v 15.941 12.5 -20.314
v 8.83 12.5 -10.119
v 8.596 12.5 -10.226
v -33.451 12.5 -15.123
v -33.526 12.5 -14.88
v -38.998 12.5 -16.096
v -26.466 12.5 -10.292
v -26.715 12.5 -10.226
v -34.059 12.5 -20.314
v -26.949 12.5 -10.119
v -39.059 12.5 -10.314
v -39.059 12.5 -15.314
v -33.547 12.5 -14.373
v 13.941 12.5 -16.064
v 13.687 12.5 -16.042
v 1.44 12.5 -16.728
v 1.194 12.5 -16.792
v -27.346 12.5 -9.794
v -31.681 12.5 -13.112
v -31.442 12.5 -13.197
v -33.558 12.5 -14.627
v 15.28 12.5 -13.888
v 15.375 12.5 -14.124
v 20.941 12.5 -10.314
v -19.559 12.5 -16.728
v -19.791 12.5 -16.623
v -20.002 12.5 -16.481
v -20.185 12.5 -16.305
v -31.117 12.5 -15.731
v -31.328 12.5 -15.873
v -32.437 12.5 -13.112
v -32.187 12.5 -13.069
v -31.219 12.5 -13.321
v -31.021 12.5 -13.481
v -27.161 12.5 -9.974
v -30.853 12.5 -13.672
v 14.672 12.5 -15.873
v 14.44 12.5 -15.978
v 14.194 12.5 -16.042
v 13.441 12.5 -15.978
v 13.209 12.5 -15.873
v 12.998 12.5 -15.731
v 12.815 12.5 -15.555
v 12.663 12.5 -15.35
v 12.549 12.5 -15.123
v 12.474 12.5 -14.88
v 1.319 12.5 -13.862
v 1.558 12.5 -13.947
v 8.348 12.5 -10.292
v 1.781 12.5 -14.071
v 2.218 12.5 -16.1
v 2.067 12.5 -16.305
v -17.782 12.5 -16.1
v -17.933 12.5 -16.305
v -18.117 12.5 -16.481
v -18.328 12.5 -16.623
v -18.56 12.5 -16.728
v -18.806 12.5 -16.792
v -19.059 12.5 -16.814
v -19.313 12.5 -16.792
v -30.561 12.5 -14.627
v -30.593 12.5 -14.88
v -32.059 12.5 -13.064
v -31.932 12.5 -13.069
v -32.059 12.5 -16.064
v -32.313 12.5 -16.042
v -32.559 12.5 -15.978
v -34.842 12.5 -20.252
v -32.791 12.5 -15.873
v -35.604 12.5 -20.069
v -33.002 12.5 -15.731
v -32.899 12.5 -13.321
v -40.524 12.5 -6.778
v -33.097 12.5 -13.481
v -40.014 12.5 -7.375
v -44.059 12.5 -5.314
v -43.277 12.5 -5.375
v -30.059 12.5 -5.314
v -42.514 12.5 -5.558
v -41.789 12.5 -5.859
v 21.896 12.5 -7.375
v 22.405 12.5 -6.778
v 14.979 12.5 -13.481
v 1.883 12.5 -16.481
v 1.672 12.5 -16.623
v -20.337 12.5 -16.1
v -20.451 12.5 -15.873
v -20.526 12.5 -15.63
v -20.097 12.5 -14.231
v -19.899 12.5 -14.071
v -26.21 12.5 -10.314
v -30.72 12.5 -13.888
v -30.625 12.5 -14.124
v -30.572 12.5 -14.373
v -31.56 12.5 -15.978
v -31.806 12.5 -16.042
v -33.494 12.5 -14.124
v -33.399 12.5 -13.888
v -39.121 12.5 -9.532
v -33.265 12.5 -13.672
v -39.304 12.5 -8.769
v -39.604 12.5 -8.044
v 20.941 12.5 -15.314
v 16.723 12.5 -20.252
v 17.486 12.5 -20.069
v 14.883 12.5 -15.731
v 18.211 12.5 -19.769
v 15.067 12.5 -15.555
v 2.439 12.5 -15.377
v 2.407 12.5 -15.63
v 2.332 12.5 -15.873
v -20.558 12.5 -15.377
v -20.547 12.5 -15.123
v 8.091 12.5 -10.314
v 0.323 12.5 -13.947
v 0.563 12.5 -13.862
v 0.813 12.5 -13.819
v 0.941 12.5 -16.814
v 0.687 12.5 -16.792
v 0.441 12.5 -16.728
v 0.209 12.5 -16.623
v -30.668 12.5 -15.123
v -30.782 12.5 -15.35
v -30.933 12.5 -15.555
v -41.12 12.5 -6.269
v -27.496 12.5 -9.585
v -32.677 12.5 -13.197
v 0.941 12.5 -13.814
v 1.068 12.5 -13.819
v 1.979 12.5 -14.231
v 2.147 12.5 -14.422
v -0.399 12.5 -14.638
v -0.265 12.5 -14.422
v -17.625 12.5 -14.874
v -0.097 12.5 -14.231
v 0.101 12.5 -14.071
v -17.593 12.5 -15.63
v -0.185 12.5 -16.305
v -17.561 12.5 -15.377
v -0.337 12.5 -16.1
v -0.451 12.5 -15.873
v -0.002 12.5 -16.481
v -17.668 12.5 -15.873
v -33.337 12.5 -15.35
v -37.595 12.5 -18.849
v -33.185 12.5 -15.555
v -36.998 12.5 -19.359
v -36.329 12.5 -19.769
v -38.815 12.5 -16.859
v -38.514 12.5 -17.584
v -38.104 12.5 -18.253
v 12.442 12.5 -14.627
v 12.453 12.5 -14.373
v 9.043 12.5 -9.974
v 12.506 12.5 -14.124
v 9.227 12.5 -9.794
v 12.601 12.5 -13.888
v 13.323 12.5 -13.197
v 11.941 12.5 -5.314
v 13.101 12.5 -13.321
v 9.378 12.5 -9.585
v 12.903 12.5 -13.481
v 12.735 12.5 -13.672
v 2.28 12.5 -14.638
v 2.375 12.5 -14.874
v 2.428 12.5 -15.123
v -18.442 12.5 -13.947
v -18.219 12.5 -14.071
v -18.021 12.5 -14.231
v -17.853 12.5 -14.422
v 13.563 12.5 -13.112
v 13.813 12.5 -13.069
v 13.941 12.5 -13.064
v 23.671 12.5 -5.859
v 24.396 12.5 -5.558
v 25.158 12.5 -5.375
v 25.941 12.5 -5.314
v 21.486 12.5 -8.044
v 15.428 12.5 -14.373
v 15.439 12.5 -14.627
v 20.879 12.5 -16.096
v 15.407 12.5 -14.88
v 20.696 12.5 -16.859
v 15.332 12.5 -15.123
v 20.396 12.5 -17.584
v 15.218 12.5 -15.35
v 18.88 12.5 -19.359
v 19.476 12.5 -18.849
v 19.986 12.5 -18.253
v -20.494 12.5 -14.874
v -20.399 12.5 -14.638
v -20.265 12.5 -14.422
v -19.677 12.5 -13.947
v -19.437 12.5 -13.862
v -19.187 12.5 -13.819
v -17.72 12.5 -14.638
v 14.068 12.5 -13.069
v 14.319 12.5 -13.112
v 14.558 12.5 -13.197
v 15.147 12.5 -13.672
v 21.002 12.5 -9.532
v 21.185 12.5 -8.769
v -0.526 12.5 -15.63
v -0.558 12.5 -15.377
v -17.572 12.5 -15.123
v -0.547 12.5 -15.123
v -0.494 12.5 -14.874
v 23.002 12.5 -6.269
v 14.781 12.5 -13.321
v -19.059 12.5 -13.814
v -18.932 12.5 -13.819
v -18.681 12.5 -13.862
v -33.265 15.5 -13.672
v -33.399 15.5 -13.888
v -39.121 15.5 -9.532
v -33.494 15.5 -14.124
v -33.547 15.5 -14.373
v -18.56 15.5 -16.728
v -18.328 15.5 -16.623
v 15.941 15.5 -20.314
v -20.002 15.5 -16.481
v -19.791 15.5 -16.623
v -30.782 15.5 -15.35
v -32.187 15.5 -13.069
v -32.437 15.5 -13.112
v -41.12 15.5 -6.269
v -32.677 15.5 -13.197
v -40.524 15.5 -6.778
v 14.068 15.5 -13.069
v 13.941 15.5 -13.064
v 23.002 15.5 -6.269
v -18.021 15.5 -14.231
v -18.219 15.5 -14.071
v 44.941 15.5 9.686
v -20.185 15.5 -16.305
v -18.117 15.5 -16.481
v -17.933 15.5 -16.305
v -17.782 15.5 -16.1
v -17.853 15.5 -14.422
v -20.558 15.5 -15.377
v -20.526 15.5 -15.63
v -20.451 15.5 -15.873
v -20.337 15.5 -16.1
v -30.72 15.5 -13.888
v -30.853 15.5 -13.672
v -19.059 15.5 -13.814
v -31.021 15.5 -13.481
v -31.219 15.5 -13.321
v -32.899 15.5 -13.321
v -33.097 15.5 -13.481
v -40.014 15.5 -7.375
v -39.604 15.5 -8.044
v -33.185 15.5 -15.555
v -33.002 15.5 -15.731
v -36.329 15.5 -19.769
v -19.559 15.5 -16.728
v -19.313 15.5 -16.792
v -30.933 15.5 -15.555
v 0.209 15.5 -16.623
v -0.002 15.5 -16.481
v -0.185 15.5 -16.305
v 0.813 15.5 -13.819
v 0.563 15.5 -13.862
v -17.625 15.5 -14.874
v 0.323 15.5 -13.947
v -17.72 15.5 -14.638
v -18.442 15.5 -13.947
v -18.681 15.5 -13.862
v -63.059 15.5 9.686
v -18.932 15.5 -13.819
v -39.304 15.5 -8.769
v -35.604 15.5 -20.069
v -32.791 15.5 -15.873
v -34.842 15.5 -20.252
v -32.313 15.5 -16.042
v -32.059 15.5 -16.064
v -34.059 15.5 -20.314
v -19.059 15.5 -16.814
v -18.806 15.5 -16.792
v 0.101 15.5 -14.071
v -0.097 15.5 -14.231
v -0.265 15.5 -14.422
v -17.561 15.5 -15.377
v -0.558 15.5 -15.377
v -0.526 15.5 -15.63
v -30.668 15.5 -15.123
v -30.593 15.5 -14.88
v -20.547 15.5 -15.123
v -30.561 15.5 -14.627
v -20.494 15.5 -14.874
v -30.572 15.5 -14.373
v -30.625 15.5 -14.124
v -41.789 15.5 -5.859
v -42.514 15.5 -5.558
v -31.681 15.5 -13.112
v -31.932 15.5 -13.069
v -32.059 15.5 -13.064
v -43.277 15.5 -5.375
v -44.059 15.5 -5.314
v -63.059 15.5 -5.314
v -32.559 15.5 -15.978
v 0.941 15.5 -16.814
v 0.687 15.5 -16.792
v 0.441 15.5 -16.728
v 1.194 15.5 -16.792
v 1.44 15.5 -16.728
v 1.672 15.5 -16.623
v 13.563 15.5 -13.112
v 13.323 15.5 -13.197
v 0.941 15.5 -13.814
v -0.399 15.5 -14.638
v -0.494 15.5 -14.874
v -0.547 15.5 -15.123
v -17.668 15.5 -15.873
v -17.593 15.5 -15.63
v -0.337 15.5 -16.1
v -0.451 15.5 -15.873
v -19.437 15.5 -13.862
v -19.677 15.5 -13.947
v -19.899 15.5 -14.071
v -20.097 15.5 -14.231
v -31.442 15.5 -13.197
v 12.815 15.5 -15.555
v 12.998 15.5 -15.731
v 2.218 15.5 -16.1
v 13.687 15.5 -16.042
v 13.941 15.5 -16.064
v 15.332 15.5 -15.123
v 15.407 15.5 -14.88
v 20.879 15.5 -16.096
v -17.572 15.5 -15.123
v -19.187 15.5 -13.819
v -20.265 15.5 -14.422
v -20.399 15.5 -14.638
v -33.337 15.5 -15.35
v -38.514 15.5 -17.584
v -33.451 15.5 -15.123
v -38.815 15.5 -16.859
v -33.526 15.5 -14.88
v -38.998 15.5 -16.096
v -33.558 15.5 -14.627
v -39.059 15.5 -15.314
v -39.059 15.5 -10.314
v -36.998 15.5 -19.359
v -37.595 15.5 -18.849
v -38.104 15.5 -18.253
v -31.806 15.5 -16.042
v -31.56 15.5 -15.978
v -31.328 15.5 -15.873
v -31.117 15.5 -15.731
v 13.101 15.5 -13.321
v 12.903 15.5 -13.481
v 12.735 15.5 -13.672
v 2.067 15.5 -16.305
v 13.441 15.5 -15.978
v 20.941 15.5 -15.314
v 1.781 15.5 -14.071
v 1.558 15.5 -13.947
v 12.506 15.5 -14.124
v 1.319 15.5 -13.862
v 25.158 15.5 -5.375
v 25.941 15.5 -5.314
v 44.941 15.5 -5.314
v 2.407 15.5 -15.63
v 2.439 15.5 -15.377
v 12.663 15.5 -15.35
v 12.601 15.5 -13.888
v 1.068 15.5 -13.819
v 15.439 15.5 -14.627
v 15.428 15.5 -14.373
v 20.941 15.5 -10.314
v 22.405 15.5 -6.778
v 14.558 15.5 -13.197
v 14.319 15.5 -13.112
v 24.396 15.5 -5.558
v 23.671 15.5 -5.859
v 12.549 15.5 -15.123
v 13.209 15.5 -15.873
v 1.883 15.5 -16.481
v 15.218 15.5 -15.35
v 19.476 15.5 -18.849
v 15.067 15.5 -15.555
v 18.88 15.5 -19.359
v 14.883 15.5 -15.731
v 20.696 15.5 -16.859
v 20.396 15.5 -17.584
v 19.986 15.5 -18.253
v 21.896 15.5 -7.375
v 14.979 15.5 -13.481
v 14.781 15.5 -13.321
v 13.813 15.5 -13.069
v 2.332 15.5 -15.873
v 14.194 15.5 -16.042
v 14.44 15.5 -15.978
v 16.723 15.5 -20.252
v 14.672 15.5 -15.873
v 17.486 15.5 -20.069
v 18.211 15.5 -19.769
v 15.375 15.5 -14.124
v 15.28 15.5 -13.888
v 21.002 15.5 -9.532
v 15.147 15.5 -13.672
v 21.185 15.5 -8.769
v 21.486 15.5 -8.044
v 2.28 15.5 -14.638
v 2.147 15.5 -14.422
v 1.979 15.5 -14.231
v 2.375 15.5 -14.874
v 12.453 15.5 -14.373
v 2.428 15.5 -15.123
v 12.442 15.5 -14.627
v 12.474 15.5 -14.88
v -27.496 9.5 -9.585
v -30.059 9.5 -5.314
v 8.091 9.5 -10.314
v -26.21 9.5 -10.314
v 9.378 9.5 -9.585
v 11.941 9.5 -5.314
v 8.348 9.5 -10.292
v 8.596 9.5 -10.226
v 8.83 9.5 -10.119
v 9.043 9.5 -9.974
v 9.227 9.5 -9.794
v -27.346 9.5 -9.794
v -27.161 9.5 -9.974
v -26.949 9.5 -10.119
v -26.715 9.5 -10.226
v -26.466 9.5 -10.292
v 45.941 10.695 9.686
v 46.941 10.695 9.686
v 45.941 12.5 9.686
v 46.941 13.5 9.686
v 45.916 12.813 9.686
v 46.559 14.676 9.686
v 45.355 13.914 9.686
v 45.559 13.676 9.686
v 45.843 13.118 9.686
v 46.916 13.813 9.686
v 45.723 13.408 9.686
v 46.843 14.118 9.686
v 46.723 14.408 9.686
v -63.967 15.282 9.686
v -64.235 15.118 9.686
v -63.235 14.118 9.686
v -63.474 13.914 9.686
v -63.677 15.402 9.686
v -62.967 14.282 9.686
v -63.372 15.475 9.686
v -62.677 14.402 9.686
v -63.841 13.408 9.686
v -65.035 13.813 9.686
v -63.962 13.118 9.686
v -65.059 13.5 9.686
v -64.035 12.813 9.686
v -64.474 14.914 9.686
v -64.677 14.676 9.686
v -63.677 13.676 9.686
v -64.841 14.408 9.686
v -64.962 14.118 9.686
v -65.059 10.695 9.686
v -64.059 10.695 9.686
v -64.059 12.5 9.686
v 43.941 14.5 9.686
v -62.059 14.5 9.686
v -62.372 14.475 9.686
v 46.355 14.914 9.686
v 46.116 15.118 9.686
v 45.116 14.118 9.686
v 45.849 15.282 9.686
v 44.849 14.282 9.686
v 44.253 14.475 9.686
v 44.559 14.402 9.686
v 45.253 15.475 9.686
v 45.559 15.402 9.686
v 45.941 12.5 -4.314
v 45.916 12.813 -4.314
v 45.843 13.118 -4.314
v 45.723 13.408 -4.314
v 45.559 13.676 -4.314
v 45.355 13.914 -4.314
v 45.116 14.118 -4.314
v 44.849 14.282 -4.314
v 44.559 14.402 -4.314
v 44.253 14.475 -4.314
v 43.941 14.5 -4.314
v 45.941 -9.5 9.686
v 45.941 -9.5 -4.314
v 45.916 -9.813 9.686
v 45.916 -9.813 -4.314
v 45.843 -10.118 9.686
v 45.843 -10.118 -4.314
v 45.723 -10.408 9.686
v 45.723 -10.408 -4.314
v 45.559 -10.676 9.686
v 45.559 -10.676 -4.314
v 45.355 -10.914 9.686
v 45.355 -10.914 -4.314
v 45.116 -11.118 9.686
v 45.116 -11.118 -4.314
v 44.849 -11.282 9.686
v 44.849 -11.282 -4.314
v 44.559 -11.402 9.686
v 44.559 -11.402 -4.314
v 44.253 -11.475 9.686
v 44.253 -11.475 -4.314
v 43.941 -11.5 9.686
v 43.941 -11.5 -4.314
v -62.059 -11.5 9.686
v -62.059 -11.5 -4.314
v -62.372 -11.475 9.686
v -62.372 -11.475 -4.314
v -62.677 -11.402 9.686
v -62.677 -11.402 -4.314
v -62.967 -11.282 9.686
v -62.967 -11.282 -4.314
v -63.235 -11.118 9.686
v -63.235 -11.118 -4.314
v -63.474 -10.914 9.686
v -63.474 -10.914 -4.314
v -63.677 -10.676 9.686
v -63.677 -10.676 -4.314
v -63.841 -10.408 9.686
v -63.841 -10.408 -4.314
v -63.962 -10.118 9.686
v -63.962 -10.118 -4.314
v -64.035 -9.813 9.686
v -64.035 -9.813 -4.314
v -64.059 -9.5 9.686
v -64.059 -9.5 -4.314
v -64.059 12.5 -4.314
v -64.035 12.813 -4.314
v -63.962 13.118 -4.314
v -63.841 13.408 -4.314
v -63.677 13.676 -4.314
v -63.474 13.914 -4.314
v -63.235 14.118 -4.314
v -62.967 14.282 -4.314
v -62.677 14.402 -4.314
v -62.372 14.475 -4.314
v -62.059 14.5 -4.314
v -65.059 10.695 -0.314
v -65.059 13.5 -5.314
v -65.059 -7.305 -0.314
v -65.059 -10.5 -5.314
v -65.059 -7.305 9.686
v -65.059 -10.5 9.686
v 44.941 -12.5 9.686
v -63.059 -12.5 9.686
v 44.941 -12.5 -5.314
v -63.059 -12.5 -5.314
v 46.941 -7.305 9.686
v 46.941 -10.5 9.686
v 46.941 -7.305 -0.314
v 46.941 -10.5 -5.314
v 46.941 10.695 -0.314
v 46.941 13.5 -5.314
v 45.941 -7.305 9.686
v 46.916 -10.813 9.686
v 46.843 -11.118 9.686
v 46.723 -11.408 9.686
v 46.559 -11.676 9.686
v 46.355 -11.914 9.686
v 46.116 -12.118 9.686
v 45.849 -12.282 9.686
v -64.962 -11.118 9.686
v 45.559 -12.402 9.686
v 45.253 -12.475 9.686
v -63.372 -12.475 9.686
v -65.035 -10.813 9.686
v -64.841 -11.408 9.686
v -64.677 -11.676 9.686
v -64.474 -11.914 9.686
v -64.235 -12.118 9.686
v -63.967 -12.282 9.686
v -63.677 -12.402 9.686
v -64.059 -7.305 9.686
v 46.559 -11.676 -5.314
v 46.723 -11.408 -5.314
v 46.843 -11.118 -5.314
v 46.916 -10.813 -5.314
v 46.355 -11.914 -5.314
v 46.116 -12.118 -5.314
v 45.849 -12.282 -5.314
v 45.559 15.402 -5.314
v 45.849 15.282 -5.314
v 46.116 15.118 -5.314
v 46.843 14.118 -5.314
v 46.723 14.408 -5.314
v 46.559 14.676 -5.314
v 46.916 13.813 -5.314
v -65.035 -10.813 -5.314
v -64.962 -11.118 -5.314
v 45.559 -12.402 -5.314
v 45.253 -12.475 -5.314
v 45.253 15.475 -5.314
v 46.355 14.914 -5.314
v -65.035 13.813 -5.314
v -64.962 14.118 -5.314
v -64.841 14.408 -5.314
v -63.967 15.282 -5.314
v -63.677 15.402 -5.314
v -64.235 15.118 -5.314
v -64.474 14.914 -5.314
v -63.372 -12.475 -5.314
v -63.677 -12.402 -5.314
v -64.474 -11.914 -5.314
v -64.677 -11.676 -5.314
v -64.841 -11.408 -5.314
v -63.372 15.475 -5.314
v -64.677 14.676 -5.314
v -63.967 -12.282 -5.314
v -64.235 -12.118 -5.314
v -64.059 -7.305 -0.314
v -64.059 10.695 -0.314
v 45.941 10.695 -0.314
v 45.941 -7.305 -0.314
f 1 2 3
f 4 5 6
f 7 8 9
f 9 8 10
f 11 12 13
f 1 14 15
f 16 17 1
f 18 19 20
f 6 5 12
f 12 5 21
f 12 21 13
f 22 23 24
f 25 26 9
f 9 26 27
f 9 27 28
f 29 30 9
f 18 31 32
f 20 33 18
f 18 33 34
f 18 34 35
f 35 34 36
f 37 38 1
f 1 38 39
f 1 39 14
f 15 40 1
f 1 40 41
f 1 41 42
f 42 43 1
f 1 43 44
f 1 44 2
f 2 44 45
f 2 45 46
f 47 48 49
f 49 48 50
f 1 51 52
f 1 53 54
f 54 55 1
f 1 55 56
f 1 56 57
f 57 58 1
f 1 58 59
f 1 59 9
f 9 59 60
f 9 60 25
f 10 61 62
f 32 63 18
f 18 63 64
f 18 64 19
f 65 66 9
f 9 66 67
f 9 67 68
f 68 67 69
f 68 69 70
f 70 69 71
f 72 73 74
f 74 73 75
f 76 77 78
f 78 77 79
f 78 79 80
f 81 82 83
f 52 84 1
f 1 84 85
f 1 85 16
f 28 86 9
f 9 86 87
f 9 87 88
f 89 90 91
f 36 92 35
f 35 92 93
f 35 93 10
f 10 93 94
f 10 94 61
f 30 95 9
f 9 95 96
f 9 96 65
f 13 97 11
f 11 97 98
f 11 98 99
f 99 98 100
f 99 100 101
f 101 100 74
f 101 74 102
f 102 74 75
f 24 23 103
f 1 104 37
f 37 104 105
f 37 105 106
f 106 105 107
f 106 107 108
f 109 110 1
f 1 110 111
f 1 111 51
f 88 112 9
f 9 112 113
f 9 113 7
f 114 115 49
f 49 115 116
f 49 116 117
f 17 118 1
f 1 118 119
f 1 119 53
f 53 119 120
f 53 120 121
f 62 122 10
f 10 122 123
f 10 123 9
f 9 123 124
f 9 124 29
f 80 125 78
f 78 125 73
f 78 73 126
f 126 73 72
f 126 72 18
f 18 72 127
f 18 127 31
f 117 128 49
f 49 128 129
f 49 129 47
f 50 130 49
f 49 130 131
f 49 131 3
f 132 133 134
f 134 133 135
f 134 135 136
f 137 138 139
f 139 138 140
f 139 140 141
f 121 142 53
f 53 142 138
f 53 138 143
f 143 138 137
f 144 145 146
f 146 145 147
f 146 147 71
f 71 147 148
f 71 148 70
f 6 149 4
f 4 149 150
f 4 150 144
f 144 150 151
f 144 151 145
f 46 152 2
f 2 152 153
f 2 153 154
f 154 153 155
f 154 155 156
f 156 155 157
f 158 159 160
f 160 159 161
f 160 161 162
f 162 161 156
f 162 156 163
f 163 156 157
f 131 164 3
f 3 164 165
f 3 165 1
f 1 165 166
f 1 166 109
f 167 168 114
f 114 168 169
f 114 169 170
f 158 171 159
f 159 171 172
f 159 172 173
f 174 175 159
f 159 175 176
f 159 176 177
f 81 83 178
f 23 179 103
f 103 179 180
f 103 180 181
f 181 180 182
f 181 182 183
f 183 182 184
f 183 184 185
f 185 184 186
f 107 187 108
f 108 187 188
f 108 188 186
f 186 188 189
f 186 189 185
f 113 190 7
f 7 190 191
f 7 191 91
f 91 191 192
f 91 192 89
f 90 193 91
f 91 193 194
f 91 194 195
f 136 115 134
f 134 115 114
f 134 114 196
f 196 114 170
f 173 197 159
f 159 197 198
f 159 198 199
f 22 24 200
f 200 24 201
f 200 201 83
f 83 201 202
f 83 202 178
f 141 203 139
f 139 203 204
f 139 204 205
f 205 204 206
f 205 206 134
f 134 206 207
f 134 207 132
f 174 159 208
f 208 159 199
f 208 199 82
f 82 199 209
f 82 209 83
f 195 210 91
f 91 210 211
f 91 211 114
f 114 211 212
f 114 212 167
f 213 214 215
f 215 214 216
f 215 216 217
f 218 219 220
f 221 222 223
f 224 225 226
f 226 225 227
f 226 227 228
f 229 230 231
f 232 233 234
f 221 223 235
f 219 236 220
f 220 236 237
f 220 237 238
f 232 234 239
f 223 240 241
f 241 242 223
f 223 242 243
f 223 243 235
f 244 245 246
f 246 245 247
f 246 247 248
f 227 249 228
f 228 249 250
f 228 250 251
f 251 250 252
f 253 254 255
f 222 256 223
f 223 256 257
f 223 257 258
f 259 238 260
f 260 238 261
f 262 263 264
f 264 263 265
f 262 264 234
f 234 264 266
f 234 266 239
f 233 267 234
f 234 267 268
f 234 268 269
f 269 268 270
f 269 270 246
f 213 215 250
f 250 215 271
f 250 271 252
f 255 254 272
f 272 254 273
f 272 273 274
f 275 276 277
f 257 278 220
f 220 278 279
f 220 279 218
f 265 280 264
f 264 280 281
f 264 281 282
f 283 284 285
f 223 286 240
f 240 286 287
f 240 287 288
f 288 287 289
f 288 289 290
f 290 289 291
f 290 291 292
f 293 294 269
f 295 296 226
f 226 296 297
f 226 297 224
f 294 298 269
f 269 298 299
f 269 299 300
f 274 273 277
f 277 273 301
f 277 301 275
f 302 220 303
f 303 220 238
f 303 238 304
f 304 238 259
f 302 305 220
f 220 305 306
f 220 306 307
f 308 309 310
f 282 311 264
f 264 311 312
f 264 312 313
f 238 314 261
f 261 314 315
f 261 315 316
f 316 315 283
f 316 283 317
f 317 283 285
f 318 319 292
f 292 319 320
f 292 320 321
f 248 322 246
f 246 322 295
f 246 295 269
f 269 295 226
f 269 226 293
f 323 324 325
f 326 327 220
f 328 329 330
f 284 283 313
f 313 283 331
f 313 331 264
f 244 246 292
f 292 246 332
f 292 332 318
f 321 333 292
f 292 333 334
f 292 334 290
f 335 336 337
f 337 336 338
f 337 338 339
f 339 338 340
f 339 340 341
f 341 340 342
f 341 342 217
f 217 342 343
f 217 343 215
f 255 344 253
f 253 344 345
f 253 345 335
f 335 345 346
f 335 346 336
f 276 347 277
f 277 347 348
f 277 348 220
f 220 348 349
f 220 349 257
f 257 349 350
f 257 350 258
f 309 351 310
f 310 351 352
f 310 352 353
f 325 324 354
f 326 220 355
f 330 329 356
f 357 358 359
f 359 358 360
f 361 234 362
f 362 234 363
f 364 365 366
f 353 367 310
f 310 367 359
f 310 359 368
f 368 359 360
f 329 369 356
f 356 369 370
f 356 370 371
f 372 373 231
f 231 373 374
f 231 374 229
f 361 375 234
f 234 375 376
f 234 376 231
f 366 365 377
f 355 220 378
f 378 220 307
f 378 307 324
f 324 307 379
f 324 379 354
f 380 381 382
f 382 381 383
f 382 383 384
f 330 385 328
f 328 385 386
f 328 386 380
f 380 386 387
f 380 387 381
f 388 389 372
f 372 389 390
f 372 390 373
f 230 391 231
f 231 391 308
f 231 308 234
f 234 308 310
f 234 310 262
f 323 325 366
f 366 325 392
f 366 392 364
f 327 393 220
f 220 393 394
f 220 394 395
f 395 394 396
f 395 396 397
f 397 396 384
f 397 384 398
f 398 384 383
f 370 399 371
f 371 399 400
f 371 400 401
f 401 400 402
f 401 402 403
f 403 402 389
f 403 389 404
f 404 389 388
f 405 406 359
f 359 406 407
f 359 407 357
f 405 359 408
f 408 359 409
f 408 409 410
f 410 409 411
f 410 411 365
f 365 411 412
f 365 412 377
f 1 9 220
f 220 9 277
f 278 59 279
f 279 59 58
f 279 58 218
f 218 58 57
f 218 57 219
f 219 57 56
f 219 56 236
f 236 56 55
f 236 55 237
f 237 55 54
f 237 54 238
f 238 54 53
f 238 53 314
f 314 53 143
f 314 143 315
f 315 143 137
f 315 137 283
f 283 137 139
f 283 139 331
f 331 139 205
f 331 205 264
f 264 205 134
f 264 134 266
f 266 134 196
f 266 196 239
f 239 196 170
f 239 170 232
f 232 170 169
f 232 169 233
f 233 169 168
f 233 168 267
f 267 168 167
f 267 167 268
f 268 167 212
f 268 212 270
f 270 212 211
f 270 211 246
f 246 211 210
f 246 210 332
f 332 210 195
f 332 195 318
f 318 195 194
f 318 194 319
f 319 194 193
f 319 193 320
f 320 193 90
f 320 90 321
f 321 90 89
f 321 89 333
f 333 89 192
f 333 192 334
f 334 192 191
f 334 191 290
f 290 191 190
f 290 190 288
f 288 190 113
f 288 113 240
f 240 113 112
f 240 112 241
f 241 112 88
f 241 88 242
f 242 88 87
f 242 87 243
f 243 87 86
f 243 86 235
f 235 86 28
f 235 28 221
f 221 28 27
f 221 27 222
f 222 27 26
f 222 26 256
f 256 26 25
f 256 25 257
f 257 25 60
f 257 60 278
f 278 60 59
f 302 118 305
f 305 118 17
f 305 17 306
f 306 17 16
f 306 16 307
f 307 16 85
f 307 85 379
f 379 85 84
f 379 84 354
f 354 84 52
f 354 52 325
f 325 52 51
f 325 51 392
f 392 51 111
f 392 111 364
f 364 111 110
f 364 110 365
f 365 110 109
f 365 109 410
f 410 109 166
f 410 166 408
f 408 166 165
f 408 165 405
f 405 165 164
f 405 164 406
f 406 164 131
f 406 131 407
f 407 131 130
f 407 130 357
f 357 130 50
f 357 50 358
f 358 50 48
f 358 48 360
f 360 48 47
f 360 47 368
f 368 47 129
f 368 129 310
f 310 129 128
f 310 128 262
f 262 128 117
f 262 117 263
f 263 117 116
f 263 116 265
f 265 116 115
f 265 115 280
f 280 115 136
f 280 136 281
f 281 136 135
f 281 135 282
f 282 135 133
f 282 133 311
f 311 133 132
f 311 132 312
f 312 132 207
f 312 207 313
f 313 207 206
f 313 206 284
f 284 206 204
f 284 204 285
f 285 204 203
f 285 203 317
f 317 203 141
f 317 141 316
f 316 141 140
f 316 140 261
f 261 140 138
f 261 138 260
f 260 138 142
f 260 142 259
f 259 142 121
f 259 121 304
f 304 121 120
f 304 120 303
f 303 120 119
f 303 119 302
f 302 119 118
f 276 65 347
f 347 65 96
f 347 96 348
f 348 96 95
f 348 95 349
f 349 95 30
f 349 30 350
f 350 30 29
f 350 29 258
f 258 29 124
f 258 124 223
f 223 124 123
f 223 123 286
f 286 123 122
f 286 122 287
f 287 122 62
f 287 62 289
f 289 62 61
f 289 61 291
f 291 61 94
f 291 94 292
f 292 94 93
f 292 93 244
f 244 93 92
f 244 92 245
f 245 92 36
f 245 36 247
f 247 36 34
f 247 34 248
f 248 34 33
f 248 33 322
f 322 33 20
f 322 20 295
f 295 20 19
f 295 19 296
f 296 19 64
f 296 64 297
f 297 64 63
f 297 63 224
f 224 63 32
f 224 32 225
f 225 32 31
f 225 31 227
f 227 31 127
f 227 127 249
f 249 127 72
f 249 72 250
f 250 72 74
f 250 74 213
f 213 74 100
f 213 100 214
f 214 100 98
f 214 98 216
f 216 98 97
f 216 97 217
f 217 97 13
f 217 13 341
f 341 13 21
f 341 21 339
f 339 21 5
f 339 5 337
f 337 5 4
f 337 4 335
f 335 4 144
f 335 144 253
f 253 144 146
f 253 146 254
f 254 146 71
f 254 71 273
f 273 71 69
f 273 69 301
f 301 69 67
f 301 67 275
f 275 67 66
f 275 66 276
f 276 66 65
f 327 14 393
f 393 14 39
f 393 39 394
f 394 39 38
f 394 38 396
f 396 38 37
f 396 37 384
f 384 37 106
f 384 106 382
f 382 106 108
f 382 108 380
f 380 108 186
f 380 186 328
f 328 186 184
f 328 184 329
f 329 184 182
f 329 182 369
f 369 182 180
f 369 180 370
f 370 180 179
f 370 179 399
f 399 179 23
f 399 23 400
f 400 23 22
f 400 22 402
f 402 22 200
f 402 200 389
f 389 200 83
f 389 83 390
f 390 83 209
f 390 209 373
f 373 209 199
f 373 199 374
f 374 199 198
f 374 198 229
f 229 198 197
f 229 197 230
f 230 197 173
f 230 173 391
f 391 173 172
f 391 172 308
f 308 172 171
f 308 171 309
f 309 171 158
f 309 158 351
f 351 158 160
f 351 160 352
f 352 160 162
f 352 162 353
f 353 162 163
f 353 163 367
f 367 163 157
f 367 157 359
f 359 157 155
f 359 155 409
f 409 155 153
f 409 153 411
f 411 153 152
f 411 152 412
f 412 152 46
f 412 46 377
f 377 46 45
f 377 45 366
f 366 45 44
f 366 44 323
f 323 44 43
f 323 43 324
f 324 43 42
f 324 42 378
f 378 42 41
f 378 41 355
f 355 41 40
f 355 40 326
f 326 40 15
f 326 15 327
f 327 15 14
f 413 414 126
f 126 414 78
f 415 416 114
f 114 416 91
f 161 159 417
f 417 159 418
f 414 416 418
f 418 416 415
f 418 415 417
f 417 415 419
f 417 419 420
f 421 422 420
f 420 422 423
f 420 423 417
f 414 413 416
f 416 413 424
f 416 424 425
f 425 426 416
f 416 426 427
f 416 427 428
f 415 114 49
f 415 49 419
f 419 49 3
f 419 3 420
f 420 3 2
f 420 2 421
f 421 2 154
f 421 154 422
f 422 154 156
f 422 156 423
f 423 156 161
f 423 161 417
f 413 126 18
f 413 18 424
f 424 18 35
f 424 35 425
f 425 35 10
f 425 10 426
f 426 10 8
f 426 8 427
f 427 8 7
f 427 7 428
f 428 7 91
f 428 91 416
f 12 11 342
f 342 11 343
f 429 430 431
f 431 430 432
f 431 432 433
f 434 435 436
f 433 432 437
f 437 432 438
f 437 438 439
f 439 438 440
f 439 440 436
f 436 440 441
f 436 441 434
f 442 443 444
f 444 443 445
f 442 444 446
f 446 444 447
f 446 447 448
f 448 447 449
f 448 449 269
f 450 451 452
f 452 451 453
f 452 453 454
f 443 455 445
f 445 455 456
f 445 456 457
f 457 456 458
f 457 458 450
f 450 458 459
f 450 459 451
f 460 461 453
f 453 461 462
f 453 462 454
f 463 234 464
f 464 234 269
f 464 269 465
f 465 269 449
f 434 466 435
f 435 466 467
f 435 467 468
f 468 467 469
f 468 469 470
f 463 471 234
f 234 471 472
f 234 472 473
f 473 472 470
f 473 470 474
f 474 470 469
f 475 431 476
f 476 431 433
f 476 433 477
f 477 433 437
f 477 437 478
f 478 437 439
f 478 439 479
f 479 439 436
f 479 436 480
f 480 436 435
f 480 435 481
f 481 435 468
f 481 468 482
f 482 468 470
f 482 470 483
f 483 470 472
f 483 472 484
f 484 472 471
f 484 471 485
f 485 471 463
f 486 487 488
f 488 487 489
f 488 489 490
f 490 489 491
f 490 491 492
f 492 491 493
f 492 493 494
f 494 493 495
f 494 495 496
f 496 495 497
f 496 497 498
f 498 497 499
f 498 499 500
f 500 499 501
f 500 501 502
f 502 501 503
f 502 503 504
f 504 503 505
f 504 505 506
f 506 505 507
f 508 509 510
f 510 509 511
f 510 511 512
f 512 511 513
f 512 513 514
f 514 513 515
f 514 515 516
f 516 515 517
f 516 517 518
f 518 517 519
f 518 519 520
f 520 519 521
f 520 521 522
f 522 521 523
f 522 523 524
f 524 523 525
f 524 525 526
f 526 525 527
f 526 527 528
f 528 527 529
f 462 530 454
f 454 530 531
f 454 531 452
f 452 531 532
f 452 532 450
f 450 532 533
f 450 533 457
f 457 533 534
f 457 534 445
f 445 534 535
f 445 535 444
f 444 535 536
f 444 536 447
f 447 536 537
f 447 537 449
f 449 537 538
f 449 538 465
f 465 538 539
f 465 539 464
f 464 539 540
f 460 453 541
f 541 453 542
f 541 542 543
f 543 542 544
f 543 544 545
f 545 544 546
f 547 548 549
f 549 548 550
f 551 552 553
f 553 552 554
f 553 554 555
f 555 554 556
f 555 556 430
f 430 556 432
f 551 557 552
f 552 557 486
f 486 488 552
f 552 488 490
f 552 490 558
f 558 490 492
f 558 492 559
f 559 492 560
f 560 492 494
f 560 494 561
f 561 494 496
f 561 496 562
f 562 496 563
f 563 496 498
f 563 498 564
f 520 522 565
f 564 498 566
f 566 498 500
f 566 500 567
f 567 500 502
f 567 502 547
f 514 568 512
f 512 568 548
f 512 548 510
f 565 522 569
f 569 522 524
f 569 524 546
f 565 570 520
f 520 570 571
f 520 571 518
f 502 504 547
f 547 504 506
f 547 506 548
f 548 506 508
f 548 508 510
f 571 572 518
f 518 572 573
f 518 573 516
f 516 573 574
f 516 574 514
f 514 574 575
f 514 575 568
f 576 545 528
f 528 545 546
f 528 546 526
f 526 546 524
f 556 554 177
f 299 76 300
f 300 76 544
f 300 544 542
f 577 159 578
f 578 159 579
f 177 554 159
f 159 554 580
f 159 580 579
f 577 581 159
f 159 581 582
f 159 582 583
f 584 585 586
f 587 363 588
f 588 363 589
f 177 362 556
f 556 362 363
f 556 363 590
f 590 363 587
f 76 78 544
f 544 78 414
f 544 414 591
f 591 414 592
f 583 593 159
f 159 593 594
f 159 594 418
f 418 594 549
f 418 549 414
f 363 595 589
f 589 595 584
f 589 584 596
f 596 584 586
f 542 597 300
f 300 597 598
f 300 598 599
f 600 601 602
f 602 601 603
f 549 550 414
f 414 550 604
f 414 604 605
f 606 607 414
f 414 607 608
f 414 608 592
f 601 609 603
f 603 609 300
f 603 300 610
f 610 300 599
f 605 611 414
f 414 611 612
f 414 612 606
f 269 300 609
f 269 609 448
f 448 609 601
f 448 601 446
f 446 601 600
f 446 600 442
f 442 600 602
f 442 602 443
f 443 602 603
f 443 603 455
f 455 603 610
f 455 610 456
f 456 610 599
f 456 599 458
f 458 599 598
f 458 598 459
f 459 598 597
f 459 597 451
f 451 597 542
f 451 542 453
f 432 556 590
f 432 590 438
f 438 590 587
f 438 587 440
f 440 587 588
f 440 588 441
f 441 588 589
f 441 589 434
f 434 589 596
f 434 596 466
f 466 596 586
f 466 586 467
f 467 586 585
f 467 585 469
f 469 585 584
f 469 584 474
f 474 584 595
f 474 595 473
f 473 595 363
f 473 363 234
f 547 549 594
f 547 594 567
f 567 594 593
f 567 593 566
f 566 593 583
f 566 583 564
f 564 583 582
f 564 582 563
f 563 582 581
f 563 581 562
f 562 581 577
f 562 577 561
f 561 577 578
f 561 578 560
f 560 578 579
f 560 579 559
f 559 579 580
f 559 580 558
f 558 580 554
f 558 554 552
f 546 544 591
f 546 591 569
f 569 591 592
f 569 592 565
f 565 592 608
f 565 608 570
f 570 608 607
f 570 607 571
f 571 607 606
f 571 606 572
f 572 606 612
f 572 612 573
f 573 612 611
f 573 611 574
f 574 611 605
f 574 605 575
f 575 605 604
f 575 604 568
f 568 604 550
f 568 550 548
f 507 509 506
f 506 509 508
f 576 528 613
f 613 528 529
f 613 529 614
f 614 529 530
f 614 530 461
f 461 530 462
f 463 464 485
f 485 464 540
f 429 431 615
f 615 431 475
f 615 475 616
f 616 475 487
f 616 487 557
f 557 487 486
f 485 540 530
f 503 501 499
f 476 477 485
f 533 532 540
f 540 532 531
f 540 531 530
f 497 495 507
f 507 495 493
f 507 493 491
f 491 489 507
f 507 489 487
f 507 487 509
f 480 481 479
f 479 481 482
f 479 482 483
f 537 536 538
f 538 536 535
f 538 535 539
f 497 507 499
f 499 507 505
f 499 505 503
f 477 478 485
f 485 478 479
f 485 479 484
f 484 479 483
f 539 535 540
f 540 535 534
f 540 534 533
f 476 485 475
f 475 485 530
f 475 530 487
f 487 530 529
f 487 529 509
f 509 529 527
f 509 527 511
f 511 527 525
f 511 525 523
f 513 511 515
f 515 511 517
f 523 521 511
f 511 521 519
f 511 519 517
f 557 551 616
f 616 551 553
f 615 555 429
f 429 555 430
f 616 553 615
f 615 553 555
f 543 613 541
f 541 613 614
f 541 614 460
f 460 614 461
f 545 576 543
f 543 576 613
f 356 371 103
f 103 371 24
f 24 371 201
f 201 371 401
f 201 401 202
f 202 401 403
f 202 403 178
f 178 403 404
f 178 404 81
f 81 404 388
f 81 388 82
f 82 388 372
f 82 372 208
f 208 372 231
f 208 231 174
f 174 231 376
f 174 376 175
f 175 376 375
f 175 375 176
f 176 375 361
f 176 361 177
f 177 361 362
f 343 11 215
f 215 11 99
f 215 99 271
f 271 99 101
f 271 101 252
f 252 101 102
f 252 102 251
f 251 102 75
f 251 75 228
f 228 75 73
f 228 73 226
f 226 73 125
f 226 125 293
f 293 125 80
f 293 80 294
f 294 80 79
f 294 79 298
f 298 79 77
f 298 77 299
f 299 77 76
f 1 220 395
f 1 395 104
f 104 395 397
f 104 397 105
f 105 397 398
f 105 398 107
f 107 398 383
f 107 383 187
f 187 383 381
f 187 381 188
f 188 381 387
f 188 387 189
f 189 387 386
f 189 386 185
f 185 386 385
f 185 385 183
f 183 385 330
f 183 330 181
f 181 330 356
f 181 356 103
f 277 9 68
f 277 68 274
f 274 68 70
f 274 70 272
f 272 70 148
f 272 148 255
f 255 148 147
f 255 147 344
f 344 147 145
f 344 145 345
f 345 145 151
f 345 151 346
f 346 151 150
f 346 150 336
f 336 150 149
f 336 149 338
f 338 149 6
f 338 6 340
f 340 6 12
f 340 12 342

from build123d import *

# Parameters (mm, degrees)
SKETCH1_W           = 50
SKETCH1_H           = 15
SKETCH1_R           = 1.5
BOSS_EXTRUDE1_DEPTH = 3
SKETCH8_W           = 112
SKETCH8_H           = 28
BOSS_EXTRUDE3_DEPTH = 15
BOSS_EXTRUDE4_DEPTH = 3
FILLET3_R           = 1.5
FILLET4_R           = 2
SKETCH11_W          = 110
SKETCH11_H          = 26
CUT_EXTRUDE1_DEPTH  = 14
FILLET6_R           = 2
FILLET7_R           = 2
FILLET8_R           = 2
FILLET9_R           = 2
SKETCH12_W          = 10
SKETCH12_H          = 18
CUT_EXTRUDE2_DEPTH  = 138
SKETCH14_W          = 5
SKETCH14_H          = 3
BOSS_EXTRUDE5_DEPTH = 15
SKETCH15_W          = 5
SKETCH15_H          = 3
BOSS_EXTRUDE6_DEPTH = 15
FILLET12_R          = 5
FILLET13_R          = 5
FILLET14_R          = 5


with BuildPart() as part:
    # Sketch1 → Boss-Extrude1 (new body)
    with BuildSketch(Plane(origin=(0, 0, -9.678822938), x_dir=(1, 0, 0), z_dir=(0, 1, 0))):
        with Locations((-9.059405941, 3.134884125)):
            Rectangle(SKETCH1_W, SKETCH1_H)
        with Locations(Location((-19.059405941, 5.634884125, 0), (0, 0, 270))):
            Circle(SKETCH1_R, mode=Mode.SUBTRACT)
        with Locations(Location((0.940594059, 5.634884125, 0), (0, 0, 270))):
            Circle(SKETCH1_R, mode=Mode.SUBTRACT)
        with Locations(Location((-32.059405941, 4.884884125, 0), (0, 0, 270))):
            Circle(SKETCH1_R, mode=Mode.SUBTRACT)
        with Locations(Location((13.940594059, 4.884884125, 0), (0, 0, 270))):
            Circle(SKETCH1_R, mode=Mode.SUBTRACT)
    extrude(amount=BOSS_EXTRUDE1_DEPTH)

    # Sketch9 → Boss-Extrude4 (add)
    with BuildSketch(Plane.XZ):
        Polygon((-27.059405941, -10.313707063), (8.940594059, -10.313707063), (11.940594059, -5.313707063), (-30.059405941, -5.313707063), align=None)
    extrude(amount=BOSS_EXTRUDE4_DEPTH)

    # Fillet3
    fillet3_edges = [part.edges().sort_by_distance(p)[0] for p in [
        (-27.059405941, -1.5, -10.313707063),
        (8.940594059, -1.5, -10.313707063),
    ]]
    fillet(fillet3_edges, radius=FILLET3_R)


with BuildPart() as body_2:
    # Sketch8 → Boss-Extrude3 (new body)
    with BuildSketch(Plane.XY.offset(-5.313707063)):
        with Locations((-9.059405941, 1.5)):
            Rectangle(SKETCH8_W, SKETCH8_H)
    extrude(amount=BOSS_EXTRUDE3_DEPTH)

    # Fillet4
    fillet4_edges = [body_2.edges().sort_by_distance(p)[0] for p in [
        (-65.059405941, 15.5, 2.186292937),
        (46.940594059, 15.5, 2.186292937),
        (46.940594059, -12.5, 2.186292937),
        (-65.059405941, -12.5, 2.186292937),
    ]]
    fillet(fillet4_edges, radius=FILLET4_R)

    # Sketch11 → Cut-Extrude1 (cut)
    with BuildSketch(Plane.XY.offset(9.686292937)):
        with Locations((-9.059405941, 1.5)):
            Rectangle(SKETCH11_W, SKETCH11_H)
    extrude(amount=-CUT_EXTRUDE1_DEPTH, mode=Mode.SUBTRACT)

    # Fillet6
    fillet6_edges = [body_2.edges().sort_by_distance(p)[0] for p in [
        (-64.059405941, 14.5, 2.686292937),
    ]]
    fillet(fillet6_edges, radius=FILLET6_R)

    # Fillet7
    fillet7_edges = [body_2.edges().sort_by_distance(p)[0] for p in [
        (-64.059405941, -11.5, 2.686292937),
    ]]
    fillet(fillet7_edges, radius=FILLET7_R)

    # Fillet8
    fillet8_edges = [body_2.edges().sort_by_distance(p)[0] for p in [
        (45.940594059, -11.5, 2.686292937),
    ]]
    fillet(fillet8_edges, radius=FILLET8_R)

    # Fillet9
    fillet9_edges = [body_2.edges().sort_by_distance(p)[0] for p in [
        (45.940594059, 14.5, 2.686292937),
    ]]
    fillet(fillet9_edges, radius=FILLET9_R)

    # Sketch12 → Cut-Extrude2 (cut)
    with BuildSketch(Plane.ZY.offset(65.059405941)):
        with Locations((4.686292937, 1.694698027)):
            Rectangle(SKETCH12_W, SKETCH12_H)
    extrude(amount=-CUT_EXTRUDE2_DEPTH, mode=Mode.SUBTRACT)


with BuildPart() as part_1:
    # Body-Move/Copy1: read off the stored shape, not the designer's step
    # Body-Move/Copy1: moved
    add(part.part.moved(Location((0, 12.5, 0))))


    add(body_2.part)  # Boss-Extrude5 merges body 2
    # Sketch14 → Boss-Extrude5 (add)
    with BuildSketch(Plane(origin=(0, 0, -5.313707063), x_dir=(-1, 0, 0), z_dir=(0, 0, -1))):
        with Locations((36.559405941, 14)):
            Rectangle(SKETCH14_W, SKETCH14_H)
    extrude(amount=BOSS_EXTRUDE5_DEPTH)

    # Sketch15 → Boss-Extrude6 (add)
    with BuildSketch(Plane(origin=(0, 0, -5.313707063), x_dir=(-1, 0, 0), z_dir=(0, 0, -1))):
        with Locations((-18.440594059, 14)):
            Rectangle(SKETCH15_W, SKETCH15_H)
    extrude(amount=BOSS_EXTRUDE6_DEPTH)

    # Fillet12
    fillet12_edges = [part_1.edges().sort_by_distance(p)[0] for p in [
        (20.940594059, 14, -5.313707063),
    ]]
    fillet(fillet12_edges, radius=FILLET12_R)

    # Fillet13
    fillet13_edges = [part_1.edges().sort_by_distance(p)[0] for p in [
        (-39.059405941, 14, -5.313707063),
    ]]
    fillet(fillet13_edges, radius=FILLET13_R)

    # Fillet14
    fillet14_edges = [part_1.edges().sort_by_distance(p)[0] for p in [
        (20.940594059, 14, -20.313707063),
        (-39.059405941, 14, -20.313707063),
    ]]
    fillet(fillet14_edges, radius=FILLET14_R)


solid = part_1.part
